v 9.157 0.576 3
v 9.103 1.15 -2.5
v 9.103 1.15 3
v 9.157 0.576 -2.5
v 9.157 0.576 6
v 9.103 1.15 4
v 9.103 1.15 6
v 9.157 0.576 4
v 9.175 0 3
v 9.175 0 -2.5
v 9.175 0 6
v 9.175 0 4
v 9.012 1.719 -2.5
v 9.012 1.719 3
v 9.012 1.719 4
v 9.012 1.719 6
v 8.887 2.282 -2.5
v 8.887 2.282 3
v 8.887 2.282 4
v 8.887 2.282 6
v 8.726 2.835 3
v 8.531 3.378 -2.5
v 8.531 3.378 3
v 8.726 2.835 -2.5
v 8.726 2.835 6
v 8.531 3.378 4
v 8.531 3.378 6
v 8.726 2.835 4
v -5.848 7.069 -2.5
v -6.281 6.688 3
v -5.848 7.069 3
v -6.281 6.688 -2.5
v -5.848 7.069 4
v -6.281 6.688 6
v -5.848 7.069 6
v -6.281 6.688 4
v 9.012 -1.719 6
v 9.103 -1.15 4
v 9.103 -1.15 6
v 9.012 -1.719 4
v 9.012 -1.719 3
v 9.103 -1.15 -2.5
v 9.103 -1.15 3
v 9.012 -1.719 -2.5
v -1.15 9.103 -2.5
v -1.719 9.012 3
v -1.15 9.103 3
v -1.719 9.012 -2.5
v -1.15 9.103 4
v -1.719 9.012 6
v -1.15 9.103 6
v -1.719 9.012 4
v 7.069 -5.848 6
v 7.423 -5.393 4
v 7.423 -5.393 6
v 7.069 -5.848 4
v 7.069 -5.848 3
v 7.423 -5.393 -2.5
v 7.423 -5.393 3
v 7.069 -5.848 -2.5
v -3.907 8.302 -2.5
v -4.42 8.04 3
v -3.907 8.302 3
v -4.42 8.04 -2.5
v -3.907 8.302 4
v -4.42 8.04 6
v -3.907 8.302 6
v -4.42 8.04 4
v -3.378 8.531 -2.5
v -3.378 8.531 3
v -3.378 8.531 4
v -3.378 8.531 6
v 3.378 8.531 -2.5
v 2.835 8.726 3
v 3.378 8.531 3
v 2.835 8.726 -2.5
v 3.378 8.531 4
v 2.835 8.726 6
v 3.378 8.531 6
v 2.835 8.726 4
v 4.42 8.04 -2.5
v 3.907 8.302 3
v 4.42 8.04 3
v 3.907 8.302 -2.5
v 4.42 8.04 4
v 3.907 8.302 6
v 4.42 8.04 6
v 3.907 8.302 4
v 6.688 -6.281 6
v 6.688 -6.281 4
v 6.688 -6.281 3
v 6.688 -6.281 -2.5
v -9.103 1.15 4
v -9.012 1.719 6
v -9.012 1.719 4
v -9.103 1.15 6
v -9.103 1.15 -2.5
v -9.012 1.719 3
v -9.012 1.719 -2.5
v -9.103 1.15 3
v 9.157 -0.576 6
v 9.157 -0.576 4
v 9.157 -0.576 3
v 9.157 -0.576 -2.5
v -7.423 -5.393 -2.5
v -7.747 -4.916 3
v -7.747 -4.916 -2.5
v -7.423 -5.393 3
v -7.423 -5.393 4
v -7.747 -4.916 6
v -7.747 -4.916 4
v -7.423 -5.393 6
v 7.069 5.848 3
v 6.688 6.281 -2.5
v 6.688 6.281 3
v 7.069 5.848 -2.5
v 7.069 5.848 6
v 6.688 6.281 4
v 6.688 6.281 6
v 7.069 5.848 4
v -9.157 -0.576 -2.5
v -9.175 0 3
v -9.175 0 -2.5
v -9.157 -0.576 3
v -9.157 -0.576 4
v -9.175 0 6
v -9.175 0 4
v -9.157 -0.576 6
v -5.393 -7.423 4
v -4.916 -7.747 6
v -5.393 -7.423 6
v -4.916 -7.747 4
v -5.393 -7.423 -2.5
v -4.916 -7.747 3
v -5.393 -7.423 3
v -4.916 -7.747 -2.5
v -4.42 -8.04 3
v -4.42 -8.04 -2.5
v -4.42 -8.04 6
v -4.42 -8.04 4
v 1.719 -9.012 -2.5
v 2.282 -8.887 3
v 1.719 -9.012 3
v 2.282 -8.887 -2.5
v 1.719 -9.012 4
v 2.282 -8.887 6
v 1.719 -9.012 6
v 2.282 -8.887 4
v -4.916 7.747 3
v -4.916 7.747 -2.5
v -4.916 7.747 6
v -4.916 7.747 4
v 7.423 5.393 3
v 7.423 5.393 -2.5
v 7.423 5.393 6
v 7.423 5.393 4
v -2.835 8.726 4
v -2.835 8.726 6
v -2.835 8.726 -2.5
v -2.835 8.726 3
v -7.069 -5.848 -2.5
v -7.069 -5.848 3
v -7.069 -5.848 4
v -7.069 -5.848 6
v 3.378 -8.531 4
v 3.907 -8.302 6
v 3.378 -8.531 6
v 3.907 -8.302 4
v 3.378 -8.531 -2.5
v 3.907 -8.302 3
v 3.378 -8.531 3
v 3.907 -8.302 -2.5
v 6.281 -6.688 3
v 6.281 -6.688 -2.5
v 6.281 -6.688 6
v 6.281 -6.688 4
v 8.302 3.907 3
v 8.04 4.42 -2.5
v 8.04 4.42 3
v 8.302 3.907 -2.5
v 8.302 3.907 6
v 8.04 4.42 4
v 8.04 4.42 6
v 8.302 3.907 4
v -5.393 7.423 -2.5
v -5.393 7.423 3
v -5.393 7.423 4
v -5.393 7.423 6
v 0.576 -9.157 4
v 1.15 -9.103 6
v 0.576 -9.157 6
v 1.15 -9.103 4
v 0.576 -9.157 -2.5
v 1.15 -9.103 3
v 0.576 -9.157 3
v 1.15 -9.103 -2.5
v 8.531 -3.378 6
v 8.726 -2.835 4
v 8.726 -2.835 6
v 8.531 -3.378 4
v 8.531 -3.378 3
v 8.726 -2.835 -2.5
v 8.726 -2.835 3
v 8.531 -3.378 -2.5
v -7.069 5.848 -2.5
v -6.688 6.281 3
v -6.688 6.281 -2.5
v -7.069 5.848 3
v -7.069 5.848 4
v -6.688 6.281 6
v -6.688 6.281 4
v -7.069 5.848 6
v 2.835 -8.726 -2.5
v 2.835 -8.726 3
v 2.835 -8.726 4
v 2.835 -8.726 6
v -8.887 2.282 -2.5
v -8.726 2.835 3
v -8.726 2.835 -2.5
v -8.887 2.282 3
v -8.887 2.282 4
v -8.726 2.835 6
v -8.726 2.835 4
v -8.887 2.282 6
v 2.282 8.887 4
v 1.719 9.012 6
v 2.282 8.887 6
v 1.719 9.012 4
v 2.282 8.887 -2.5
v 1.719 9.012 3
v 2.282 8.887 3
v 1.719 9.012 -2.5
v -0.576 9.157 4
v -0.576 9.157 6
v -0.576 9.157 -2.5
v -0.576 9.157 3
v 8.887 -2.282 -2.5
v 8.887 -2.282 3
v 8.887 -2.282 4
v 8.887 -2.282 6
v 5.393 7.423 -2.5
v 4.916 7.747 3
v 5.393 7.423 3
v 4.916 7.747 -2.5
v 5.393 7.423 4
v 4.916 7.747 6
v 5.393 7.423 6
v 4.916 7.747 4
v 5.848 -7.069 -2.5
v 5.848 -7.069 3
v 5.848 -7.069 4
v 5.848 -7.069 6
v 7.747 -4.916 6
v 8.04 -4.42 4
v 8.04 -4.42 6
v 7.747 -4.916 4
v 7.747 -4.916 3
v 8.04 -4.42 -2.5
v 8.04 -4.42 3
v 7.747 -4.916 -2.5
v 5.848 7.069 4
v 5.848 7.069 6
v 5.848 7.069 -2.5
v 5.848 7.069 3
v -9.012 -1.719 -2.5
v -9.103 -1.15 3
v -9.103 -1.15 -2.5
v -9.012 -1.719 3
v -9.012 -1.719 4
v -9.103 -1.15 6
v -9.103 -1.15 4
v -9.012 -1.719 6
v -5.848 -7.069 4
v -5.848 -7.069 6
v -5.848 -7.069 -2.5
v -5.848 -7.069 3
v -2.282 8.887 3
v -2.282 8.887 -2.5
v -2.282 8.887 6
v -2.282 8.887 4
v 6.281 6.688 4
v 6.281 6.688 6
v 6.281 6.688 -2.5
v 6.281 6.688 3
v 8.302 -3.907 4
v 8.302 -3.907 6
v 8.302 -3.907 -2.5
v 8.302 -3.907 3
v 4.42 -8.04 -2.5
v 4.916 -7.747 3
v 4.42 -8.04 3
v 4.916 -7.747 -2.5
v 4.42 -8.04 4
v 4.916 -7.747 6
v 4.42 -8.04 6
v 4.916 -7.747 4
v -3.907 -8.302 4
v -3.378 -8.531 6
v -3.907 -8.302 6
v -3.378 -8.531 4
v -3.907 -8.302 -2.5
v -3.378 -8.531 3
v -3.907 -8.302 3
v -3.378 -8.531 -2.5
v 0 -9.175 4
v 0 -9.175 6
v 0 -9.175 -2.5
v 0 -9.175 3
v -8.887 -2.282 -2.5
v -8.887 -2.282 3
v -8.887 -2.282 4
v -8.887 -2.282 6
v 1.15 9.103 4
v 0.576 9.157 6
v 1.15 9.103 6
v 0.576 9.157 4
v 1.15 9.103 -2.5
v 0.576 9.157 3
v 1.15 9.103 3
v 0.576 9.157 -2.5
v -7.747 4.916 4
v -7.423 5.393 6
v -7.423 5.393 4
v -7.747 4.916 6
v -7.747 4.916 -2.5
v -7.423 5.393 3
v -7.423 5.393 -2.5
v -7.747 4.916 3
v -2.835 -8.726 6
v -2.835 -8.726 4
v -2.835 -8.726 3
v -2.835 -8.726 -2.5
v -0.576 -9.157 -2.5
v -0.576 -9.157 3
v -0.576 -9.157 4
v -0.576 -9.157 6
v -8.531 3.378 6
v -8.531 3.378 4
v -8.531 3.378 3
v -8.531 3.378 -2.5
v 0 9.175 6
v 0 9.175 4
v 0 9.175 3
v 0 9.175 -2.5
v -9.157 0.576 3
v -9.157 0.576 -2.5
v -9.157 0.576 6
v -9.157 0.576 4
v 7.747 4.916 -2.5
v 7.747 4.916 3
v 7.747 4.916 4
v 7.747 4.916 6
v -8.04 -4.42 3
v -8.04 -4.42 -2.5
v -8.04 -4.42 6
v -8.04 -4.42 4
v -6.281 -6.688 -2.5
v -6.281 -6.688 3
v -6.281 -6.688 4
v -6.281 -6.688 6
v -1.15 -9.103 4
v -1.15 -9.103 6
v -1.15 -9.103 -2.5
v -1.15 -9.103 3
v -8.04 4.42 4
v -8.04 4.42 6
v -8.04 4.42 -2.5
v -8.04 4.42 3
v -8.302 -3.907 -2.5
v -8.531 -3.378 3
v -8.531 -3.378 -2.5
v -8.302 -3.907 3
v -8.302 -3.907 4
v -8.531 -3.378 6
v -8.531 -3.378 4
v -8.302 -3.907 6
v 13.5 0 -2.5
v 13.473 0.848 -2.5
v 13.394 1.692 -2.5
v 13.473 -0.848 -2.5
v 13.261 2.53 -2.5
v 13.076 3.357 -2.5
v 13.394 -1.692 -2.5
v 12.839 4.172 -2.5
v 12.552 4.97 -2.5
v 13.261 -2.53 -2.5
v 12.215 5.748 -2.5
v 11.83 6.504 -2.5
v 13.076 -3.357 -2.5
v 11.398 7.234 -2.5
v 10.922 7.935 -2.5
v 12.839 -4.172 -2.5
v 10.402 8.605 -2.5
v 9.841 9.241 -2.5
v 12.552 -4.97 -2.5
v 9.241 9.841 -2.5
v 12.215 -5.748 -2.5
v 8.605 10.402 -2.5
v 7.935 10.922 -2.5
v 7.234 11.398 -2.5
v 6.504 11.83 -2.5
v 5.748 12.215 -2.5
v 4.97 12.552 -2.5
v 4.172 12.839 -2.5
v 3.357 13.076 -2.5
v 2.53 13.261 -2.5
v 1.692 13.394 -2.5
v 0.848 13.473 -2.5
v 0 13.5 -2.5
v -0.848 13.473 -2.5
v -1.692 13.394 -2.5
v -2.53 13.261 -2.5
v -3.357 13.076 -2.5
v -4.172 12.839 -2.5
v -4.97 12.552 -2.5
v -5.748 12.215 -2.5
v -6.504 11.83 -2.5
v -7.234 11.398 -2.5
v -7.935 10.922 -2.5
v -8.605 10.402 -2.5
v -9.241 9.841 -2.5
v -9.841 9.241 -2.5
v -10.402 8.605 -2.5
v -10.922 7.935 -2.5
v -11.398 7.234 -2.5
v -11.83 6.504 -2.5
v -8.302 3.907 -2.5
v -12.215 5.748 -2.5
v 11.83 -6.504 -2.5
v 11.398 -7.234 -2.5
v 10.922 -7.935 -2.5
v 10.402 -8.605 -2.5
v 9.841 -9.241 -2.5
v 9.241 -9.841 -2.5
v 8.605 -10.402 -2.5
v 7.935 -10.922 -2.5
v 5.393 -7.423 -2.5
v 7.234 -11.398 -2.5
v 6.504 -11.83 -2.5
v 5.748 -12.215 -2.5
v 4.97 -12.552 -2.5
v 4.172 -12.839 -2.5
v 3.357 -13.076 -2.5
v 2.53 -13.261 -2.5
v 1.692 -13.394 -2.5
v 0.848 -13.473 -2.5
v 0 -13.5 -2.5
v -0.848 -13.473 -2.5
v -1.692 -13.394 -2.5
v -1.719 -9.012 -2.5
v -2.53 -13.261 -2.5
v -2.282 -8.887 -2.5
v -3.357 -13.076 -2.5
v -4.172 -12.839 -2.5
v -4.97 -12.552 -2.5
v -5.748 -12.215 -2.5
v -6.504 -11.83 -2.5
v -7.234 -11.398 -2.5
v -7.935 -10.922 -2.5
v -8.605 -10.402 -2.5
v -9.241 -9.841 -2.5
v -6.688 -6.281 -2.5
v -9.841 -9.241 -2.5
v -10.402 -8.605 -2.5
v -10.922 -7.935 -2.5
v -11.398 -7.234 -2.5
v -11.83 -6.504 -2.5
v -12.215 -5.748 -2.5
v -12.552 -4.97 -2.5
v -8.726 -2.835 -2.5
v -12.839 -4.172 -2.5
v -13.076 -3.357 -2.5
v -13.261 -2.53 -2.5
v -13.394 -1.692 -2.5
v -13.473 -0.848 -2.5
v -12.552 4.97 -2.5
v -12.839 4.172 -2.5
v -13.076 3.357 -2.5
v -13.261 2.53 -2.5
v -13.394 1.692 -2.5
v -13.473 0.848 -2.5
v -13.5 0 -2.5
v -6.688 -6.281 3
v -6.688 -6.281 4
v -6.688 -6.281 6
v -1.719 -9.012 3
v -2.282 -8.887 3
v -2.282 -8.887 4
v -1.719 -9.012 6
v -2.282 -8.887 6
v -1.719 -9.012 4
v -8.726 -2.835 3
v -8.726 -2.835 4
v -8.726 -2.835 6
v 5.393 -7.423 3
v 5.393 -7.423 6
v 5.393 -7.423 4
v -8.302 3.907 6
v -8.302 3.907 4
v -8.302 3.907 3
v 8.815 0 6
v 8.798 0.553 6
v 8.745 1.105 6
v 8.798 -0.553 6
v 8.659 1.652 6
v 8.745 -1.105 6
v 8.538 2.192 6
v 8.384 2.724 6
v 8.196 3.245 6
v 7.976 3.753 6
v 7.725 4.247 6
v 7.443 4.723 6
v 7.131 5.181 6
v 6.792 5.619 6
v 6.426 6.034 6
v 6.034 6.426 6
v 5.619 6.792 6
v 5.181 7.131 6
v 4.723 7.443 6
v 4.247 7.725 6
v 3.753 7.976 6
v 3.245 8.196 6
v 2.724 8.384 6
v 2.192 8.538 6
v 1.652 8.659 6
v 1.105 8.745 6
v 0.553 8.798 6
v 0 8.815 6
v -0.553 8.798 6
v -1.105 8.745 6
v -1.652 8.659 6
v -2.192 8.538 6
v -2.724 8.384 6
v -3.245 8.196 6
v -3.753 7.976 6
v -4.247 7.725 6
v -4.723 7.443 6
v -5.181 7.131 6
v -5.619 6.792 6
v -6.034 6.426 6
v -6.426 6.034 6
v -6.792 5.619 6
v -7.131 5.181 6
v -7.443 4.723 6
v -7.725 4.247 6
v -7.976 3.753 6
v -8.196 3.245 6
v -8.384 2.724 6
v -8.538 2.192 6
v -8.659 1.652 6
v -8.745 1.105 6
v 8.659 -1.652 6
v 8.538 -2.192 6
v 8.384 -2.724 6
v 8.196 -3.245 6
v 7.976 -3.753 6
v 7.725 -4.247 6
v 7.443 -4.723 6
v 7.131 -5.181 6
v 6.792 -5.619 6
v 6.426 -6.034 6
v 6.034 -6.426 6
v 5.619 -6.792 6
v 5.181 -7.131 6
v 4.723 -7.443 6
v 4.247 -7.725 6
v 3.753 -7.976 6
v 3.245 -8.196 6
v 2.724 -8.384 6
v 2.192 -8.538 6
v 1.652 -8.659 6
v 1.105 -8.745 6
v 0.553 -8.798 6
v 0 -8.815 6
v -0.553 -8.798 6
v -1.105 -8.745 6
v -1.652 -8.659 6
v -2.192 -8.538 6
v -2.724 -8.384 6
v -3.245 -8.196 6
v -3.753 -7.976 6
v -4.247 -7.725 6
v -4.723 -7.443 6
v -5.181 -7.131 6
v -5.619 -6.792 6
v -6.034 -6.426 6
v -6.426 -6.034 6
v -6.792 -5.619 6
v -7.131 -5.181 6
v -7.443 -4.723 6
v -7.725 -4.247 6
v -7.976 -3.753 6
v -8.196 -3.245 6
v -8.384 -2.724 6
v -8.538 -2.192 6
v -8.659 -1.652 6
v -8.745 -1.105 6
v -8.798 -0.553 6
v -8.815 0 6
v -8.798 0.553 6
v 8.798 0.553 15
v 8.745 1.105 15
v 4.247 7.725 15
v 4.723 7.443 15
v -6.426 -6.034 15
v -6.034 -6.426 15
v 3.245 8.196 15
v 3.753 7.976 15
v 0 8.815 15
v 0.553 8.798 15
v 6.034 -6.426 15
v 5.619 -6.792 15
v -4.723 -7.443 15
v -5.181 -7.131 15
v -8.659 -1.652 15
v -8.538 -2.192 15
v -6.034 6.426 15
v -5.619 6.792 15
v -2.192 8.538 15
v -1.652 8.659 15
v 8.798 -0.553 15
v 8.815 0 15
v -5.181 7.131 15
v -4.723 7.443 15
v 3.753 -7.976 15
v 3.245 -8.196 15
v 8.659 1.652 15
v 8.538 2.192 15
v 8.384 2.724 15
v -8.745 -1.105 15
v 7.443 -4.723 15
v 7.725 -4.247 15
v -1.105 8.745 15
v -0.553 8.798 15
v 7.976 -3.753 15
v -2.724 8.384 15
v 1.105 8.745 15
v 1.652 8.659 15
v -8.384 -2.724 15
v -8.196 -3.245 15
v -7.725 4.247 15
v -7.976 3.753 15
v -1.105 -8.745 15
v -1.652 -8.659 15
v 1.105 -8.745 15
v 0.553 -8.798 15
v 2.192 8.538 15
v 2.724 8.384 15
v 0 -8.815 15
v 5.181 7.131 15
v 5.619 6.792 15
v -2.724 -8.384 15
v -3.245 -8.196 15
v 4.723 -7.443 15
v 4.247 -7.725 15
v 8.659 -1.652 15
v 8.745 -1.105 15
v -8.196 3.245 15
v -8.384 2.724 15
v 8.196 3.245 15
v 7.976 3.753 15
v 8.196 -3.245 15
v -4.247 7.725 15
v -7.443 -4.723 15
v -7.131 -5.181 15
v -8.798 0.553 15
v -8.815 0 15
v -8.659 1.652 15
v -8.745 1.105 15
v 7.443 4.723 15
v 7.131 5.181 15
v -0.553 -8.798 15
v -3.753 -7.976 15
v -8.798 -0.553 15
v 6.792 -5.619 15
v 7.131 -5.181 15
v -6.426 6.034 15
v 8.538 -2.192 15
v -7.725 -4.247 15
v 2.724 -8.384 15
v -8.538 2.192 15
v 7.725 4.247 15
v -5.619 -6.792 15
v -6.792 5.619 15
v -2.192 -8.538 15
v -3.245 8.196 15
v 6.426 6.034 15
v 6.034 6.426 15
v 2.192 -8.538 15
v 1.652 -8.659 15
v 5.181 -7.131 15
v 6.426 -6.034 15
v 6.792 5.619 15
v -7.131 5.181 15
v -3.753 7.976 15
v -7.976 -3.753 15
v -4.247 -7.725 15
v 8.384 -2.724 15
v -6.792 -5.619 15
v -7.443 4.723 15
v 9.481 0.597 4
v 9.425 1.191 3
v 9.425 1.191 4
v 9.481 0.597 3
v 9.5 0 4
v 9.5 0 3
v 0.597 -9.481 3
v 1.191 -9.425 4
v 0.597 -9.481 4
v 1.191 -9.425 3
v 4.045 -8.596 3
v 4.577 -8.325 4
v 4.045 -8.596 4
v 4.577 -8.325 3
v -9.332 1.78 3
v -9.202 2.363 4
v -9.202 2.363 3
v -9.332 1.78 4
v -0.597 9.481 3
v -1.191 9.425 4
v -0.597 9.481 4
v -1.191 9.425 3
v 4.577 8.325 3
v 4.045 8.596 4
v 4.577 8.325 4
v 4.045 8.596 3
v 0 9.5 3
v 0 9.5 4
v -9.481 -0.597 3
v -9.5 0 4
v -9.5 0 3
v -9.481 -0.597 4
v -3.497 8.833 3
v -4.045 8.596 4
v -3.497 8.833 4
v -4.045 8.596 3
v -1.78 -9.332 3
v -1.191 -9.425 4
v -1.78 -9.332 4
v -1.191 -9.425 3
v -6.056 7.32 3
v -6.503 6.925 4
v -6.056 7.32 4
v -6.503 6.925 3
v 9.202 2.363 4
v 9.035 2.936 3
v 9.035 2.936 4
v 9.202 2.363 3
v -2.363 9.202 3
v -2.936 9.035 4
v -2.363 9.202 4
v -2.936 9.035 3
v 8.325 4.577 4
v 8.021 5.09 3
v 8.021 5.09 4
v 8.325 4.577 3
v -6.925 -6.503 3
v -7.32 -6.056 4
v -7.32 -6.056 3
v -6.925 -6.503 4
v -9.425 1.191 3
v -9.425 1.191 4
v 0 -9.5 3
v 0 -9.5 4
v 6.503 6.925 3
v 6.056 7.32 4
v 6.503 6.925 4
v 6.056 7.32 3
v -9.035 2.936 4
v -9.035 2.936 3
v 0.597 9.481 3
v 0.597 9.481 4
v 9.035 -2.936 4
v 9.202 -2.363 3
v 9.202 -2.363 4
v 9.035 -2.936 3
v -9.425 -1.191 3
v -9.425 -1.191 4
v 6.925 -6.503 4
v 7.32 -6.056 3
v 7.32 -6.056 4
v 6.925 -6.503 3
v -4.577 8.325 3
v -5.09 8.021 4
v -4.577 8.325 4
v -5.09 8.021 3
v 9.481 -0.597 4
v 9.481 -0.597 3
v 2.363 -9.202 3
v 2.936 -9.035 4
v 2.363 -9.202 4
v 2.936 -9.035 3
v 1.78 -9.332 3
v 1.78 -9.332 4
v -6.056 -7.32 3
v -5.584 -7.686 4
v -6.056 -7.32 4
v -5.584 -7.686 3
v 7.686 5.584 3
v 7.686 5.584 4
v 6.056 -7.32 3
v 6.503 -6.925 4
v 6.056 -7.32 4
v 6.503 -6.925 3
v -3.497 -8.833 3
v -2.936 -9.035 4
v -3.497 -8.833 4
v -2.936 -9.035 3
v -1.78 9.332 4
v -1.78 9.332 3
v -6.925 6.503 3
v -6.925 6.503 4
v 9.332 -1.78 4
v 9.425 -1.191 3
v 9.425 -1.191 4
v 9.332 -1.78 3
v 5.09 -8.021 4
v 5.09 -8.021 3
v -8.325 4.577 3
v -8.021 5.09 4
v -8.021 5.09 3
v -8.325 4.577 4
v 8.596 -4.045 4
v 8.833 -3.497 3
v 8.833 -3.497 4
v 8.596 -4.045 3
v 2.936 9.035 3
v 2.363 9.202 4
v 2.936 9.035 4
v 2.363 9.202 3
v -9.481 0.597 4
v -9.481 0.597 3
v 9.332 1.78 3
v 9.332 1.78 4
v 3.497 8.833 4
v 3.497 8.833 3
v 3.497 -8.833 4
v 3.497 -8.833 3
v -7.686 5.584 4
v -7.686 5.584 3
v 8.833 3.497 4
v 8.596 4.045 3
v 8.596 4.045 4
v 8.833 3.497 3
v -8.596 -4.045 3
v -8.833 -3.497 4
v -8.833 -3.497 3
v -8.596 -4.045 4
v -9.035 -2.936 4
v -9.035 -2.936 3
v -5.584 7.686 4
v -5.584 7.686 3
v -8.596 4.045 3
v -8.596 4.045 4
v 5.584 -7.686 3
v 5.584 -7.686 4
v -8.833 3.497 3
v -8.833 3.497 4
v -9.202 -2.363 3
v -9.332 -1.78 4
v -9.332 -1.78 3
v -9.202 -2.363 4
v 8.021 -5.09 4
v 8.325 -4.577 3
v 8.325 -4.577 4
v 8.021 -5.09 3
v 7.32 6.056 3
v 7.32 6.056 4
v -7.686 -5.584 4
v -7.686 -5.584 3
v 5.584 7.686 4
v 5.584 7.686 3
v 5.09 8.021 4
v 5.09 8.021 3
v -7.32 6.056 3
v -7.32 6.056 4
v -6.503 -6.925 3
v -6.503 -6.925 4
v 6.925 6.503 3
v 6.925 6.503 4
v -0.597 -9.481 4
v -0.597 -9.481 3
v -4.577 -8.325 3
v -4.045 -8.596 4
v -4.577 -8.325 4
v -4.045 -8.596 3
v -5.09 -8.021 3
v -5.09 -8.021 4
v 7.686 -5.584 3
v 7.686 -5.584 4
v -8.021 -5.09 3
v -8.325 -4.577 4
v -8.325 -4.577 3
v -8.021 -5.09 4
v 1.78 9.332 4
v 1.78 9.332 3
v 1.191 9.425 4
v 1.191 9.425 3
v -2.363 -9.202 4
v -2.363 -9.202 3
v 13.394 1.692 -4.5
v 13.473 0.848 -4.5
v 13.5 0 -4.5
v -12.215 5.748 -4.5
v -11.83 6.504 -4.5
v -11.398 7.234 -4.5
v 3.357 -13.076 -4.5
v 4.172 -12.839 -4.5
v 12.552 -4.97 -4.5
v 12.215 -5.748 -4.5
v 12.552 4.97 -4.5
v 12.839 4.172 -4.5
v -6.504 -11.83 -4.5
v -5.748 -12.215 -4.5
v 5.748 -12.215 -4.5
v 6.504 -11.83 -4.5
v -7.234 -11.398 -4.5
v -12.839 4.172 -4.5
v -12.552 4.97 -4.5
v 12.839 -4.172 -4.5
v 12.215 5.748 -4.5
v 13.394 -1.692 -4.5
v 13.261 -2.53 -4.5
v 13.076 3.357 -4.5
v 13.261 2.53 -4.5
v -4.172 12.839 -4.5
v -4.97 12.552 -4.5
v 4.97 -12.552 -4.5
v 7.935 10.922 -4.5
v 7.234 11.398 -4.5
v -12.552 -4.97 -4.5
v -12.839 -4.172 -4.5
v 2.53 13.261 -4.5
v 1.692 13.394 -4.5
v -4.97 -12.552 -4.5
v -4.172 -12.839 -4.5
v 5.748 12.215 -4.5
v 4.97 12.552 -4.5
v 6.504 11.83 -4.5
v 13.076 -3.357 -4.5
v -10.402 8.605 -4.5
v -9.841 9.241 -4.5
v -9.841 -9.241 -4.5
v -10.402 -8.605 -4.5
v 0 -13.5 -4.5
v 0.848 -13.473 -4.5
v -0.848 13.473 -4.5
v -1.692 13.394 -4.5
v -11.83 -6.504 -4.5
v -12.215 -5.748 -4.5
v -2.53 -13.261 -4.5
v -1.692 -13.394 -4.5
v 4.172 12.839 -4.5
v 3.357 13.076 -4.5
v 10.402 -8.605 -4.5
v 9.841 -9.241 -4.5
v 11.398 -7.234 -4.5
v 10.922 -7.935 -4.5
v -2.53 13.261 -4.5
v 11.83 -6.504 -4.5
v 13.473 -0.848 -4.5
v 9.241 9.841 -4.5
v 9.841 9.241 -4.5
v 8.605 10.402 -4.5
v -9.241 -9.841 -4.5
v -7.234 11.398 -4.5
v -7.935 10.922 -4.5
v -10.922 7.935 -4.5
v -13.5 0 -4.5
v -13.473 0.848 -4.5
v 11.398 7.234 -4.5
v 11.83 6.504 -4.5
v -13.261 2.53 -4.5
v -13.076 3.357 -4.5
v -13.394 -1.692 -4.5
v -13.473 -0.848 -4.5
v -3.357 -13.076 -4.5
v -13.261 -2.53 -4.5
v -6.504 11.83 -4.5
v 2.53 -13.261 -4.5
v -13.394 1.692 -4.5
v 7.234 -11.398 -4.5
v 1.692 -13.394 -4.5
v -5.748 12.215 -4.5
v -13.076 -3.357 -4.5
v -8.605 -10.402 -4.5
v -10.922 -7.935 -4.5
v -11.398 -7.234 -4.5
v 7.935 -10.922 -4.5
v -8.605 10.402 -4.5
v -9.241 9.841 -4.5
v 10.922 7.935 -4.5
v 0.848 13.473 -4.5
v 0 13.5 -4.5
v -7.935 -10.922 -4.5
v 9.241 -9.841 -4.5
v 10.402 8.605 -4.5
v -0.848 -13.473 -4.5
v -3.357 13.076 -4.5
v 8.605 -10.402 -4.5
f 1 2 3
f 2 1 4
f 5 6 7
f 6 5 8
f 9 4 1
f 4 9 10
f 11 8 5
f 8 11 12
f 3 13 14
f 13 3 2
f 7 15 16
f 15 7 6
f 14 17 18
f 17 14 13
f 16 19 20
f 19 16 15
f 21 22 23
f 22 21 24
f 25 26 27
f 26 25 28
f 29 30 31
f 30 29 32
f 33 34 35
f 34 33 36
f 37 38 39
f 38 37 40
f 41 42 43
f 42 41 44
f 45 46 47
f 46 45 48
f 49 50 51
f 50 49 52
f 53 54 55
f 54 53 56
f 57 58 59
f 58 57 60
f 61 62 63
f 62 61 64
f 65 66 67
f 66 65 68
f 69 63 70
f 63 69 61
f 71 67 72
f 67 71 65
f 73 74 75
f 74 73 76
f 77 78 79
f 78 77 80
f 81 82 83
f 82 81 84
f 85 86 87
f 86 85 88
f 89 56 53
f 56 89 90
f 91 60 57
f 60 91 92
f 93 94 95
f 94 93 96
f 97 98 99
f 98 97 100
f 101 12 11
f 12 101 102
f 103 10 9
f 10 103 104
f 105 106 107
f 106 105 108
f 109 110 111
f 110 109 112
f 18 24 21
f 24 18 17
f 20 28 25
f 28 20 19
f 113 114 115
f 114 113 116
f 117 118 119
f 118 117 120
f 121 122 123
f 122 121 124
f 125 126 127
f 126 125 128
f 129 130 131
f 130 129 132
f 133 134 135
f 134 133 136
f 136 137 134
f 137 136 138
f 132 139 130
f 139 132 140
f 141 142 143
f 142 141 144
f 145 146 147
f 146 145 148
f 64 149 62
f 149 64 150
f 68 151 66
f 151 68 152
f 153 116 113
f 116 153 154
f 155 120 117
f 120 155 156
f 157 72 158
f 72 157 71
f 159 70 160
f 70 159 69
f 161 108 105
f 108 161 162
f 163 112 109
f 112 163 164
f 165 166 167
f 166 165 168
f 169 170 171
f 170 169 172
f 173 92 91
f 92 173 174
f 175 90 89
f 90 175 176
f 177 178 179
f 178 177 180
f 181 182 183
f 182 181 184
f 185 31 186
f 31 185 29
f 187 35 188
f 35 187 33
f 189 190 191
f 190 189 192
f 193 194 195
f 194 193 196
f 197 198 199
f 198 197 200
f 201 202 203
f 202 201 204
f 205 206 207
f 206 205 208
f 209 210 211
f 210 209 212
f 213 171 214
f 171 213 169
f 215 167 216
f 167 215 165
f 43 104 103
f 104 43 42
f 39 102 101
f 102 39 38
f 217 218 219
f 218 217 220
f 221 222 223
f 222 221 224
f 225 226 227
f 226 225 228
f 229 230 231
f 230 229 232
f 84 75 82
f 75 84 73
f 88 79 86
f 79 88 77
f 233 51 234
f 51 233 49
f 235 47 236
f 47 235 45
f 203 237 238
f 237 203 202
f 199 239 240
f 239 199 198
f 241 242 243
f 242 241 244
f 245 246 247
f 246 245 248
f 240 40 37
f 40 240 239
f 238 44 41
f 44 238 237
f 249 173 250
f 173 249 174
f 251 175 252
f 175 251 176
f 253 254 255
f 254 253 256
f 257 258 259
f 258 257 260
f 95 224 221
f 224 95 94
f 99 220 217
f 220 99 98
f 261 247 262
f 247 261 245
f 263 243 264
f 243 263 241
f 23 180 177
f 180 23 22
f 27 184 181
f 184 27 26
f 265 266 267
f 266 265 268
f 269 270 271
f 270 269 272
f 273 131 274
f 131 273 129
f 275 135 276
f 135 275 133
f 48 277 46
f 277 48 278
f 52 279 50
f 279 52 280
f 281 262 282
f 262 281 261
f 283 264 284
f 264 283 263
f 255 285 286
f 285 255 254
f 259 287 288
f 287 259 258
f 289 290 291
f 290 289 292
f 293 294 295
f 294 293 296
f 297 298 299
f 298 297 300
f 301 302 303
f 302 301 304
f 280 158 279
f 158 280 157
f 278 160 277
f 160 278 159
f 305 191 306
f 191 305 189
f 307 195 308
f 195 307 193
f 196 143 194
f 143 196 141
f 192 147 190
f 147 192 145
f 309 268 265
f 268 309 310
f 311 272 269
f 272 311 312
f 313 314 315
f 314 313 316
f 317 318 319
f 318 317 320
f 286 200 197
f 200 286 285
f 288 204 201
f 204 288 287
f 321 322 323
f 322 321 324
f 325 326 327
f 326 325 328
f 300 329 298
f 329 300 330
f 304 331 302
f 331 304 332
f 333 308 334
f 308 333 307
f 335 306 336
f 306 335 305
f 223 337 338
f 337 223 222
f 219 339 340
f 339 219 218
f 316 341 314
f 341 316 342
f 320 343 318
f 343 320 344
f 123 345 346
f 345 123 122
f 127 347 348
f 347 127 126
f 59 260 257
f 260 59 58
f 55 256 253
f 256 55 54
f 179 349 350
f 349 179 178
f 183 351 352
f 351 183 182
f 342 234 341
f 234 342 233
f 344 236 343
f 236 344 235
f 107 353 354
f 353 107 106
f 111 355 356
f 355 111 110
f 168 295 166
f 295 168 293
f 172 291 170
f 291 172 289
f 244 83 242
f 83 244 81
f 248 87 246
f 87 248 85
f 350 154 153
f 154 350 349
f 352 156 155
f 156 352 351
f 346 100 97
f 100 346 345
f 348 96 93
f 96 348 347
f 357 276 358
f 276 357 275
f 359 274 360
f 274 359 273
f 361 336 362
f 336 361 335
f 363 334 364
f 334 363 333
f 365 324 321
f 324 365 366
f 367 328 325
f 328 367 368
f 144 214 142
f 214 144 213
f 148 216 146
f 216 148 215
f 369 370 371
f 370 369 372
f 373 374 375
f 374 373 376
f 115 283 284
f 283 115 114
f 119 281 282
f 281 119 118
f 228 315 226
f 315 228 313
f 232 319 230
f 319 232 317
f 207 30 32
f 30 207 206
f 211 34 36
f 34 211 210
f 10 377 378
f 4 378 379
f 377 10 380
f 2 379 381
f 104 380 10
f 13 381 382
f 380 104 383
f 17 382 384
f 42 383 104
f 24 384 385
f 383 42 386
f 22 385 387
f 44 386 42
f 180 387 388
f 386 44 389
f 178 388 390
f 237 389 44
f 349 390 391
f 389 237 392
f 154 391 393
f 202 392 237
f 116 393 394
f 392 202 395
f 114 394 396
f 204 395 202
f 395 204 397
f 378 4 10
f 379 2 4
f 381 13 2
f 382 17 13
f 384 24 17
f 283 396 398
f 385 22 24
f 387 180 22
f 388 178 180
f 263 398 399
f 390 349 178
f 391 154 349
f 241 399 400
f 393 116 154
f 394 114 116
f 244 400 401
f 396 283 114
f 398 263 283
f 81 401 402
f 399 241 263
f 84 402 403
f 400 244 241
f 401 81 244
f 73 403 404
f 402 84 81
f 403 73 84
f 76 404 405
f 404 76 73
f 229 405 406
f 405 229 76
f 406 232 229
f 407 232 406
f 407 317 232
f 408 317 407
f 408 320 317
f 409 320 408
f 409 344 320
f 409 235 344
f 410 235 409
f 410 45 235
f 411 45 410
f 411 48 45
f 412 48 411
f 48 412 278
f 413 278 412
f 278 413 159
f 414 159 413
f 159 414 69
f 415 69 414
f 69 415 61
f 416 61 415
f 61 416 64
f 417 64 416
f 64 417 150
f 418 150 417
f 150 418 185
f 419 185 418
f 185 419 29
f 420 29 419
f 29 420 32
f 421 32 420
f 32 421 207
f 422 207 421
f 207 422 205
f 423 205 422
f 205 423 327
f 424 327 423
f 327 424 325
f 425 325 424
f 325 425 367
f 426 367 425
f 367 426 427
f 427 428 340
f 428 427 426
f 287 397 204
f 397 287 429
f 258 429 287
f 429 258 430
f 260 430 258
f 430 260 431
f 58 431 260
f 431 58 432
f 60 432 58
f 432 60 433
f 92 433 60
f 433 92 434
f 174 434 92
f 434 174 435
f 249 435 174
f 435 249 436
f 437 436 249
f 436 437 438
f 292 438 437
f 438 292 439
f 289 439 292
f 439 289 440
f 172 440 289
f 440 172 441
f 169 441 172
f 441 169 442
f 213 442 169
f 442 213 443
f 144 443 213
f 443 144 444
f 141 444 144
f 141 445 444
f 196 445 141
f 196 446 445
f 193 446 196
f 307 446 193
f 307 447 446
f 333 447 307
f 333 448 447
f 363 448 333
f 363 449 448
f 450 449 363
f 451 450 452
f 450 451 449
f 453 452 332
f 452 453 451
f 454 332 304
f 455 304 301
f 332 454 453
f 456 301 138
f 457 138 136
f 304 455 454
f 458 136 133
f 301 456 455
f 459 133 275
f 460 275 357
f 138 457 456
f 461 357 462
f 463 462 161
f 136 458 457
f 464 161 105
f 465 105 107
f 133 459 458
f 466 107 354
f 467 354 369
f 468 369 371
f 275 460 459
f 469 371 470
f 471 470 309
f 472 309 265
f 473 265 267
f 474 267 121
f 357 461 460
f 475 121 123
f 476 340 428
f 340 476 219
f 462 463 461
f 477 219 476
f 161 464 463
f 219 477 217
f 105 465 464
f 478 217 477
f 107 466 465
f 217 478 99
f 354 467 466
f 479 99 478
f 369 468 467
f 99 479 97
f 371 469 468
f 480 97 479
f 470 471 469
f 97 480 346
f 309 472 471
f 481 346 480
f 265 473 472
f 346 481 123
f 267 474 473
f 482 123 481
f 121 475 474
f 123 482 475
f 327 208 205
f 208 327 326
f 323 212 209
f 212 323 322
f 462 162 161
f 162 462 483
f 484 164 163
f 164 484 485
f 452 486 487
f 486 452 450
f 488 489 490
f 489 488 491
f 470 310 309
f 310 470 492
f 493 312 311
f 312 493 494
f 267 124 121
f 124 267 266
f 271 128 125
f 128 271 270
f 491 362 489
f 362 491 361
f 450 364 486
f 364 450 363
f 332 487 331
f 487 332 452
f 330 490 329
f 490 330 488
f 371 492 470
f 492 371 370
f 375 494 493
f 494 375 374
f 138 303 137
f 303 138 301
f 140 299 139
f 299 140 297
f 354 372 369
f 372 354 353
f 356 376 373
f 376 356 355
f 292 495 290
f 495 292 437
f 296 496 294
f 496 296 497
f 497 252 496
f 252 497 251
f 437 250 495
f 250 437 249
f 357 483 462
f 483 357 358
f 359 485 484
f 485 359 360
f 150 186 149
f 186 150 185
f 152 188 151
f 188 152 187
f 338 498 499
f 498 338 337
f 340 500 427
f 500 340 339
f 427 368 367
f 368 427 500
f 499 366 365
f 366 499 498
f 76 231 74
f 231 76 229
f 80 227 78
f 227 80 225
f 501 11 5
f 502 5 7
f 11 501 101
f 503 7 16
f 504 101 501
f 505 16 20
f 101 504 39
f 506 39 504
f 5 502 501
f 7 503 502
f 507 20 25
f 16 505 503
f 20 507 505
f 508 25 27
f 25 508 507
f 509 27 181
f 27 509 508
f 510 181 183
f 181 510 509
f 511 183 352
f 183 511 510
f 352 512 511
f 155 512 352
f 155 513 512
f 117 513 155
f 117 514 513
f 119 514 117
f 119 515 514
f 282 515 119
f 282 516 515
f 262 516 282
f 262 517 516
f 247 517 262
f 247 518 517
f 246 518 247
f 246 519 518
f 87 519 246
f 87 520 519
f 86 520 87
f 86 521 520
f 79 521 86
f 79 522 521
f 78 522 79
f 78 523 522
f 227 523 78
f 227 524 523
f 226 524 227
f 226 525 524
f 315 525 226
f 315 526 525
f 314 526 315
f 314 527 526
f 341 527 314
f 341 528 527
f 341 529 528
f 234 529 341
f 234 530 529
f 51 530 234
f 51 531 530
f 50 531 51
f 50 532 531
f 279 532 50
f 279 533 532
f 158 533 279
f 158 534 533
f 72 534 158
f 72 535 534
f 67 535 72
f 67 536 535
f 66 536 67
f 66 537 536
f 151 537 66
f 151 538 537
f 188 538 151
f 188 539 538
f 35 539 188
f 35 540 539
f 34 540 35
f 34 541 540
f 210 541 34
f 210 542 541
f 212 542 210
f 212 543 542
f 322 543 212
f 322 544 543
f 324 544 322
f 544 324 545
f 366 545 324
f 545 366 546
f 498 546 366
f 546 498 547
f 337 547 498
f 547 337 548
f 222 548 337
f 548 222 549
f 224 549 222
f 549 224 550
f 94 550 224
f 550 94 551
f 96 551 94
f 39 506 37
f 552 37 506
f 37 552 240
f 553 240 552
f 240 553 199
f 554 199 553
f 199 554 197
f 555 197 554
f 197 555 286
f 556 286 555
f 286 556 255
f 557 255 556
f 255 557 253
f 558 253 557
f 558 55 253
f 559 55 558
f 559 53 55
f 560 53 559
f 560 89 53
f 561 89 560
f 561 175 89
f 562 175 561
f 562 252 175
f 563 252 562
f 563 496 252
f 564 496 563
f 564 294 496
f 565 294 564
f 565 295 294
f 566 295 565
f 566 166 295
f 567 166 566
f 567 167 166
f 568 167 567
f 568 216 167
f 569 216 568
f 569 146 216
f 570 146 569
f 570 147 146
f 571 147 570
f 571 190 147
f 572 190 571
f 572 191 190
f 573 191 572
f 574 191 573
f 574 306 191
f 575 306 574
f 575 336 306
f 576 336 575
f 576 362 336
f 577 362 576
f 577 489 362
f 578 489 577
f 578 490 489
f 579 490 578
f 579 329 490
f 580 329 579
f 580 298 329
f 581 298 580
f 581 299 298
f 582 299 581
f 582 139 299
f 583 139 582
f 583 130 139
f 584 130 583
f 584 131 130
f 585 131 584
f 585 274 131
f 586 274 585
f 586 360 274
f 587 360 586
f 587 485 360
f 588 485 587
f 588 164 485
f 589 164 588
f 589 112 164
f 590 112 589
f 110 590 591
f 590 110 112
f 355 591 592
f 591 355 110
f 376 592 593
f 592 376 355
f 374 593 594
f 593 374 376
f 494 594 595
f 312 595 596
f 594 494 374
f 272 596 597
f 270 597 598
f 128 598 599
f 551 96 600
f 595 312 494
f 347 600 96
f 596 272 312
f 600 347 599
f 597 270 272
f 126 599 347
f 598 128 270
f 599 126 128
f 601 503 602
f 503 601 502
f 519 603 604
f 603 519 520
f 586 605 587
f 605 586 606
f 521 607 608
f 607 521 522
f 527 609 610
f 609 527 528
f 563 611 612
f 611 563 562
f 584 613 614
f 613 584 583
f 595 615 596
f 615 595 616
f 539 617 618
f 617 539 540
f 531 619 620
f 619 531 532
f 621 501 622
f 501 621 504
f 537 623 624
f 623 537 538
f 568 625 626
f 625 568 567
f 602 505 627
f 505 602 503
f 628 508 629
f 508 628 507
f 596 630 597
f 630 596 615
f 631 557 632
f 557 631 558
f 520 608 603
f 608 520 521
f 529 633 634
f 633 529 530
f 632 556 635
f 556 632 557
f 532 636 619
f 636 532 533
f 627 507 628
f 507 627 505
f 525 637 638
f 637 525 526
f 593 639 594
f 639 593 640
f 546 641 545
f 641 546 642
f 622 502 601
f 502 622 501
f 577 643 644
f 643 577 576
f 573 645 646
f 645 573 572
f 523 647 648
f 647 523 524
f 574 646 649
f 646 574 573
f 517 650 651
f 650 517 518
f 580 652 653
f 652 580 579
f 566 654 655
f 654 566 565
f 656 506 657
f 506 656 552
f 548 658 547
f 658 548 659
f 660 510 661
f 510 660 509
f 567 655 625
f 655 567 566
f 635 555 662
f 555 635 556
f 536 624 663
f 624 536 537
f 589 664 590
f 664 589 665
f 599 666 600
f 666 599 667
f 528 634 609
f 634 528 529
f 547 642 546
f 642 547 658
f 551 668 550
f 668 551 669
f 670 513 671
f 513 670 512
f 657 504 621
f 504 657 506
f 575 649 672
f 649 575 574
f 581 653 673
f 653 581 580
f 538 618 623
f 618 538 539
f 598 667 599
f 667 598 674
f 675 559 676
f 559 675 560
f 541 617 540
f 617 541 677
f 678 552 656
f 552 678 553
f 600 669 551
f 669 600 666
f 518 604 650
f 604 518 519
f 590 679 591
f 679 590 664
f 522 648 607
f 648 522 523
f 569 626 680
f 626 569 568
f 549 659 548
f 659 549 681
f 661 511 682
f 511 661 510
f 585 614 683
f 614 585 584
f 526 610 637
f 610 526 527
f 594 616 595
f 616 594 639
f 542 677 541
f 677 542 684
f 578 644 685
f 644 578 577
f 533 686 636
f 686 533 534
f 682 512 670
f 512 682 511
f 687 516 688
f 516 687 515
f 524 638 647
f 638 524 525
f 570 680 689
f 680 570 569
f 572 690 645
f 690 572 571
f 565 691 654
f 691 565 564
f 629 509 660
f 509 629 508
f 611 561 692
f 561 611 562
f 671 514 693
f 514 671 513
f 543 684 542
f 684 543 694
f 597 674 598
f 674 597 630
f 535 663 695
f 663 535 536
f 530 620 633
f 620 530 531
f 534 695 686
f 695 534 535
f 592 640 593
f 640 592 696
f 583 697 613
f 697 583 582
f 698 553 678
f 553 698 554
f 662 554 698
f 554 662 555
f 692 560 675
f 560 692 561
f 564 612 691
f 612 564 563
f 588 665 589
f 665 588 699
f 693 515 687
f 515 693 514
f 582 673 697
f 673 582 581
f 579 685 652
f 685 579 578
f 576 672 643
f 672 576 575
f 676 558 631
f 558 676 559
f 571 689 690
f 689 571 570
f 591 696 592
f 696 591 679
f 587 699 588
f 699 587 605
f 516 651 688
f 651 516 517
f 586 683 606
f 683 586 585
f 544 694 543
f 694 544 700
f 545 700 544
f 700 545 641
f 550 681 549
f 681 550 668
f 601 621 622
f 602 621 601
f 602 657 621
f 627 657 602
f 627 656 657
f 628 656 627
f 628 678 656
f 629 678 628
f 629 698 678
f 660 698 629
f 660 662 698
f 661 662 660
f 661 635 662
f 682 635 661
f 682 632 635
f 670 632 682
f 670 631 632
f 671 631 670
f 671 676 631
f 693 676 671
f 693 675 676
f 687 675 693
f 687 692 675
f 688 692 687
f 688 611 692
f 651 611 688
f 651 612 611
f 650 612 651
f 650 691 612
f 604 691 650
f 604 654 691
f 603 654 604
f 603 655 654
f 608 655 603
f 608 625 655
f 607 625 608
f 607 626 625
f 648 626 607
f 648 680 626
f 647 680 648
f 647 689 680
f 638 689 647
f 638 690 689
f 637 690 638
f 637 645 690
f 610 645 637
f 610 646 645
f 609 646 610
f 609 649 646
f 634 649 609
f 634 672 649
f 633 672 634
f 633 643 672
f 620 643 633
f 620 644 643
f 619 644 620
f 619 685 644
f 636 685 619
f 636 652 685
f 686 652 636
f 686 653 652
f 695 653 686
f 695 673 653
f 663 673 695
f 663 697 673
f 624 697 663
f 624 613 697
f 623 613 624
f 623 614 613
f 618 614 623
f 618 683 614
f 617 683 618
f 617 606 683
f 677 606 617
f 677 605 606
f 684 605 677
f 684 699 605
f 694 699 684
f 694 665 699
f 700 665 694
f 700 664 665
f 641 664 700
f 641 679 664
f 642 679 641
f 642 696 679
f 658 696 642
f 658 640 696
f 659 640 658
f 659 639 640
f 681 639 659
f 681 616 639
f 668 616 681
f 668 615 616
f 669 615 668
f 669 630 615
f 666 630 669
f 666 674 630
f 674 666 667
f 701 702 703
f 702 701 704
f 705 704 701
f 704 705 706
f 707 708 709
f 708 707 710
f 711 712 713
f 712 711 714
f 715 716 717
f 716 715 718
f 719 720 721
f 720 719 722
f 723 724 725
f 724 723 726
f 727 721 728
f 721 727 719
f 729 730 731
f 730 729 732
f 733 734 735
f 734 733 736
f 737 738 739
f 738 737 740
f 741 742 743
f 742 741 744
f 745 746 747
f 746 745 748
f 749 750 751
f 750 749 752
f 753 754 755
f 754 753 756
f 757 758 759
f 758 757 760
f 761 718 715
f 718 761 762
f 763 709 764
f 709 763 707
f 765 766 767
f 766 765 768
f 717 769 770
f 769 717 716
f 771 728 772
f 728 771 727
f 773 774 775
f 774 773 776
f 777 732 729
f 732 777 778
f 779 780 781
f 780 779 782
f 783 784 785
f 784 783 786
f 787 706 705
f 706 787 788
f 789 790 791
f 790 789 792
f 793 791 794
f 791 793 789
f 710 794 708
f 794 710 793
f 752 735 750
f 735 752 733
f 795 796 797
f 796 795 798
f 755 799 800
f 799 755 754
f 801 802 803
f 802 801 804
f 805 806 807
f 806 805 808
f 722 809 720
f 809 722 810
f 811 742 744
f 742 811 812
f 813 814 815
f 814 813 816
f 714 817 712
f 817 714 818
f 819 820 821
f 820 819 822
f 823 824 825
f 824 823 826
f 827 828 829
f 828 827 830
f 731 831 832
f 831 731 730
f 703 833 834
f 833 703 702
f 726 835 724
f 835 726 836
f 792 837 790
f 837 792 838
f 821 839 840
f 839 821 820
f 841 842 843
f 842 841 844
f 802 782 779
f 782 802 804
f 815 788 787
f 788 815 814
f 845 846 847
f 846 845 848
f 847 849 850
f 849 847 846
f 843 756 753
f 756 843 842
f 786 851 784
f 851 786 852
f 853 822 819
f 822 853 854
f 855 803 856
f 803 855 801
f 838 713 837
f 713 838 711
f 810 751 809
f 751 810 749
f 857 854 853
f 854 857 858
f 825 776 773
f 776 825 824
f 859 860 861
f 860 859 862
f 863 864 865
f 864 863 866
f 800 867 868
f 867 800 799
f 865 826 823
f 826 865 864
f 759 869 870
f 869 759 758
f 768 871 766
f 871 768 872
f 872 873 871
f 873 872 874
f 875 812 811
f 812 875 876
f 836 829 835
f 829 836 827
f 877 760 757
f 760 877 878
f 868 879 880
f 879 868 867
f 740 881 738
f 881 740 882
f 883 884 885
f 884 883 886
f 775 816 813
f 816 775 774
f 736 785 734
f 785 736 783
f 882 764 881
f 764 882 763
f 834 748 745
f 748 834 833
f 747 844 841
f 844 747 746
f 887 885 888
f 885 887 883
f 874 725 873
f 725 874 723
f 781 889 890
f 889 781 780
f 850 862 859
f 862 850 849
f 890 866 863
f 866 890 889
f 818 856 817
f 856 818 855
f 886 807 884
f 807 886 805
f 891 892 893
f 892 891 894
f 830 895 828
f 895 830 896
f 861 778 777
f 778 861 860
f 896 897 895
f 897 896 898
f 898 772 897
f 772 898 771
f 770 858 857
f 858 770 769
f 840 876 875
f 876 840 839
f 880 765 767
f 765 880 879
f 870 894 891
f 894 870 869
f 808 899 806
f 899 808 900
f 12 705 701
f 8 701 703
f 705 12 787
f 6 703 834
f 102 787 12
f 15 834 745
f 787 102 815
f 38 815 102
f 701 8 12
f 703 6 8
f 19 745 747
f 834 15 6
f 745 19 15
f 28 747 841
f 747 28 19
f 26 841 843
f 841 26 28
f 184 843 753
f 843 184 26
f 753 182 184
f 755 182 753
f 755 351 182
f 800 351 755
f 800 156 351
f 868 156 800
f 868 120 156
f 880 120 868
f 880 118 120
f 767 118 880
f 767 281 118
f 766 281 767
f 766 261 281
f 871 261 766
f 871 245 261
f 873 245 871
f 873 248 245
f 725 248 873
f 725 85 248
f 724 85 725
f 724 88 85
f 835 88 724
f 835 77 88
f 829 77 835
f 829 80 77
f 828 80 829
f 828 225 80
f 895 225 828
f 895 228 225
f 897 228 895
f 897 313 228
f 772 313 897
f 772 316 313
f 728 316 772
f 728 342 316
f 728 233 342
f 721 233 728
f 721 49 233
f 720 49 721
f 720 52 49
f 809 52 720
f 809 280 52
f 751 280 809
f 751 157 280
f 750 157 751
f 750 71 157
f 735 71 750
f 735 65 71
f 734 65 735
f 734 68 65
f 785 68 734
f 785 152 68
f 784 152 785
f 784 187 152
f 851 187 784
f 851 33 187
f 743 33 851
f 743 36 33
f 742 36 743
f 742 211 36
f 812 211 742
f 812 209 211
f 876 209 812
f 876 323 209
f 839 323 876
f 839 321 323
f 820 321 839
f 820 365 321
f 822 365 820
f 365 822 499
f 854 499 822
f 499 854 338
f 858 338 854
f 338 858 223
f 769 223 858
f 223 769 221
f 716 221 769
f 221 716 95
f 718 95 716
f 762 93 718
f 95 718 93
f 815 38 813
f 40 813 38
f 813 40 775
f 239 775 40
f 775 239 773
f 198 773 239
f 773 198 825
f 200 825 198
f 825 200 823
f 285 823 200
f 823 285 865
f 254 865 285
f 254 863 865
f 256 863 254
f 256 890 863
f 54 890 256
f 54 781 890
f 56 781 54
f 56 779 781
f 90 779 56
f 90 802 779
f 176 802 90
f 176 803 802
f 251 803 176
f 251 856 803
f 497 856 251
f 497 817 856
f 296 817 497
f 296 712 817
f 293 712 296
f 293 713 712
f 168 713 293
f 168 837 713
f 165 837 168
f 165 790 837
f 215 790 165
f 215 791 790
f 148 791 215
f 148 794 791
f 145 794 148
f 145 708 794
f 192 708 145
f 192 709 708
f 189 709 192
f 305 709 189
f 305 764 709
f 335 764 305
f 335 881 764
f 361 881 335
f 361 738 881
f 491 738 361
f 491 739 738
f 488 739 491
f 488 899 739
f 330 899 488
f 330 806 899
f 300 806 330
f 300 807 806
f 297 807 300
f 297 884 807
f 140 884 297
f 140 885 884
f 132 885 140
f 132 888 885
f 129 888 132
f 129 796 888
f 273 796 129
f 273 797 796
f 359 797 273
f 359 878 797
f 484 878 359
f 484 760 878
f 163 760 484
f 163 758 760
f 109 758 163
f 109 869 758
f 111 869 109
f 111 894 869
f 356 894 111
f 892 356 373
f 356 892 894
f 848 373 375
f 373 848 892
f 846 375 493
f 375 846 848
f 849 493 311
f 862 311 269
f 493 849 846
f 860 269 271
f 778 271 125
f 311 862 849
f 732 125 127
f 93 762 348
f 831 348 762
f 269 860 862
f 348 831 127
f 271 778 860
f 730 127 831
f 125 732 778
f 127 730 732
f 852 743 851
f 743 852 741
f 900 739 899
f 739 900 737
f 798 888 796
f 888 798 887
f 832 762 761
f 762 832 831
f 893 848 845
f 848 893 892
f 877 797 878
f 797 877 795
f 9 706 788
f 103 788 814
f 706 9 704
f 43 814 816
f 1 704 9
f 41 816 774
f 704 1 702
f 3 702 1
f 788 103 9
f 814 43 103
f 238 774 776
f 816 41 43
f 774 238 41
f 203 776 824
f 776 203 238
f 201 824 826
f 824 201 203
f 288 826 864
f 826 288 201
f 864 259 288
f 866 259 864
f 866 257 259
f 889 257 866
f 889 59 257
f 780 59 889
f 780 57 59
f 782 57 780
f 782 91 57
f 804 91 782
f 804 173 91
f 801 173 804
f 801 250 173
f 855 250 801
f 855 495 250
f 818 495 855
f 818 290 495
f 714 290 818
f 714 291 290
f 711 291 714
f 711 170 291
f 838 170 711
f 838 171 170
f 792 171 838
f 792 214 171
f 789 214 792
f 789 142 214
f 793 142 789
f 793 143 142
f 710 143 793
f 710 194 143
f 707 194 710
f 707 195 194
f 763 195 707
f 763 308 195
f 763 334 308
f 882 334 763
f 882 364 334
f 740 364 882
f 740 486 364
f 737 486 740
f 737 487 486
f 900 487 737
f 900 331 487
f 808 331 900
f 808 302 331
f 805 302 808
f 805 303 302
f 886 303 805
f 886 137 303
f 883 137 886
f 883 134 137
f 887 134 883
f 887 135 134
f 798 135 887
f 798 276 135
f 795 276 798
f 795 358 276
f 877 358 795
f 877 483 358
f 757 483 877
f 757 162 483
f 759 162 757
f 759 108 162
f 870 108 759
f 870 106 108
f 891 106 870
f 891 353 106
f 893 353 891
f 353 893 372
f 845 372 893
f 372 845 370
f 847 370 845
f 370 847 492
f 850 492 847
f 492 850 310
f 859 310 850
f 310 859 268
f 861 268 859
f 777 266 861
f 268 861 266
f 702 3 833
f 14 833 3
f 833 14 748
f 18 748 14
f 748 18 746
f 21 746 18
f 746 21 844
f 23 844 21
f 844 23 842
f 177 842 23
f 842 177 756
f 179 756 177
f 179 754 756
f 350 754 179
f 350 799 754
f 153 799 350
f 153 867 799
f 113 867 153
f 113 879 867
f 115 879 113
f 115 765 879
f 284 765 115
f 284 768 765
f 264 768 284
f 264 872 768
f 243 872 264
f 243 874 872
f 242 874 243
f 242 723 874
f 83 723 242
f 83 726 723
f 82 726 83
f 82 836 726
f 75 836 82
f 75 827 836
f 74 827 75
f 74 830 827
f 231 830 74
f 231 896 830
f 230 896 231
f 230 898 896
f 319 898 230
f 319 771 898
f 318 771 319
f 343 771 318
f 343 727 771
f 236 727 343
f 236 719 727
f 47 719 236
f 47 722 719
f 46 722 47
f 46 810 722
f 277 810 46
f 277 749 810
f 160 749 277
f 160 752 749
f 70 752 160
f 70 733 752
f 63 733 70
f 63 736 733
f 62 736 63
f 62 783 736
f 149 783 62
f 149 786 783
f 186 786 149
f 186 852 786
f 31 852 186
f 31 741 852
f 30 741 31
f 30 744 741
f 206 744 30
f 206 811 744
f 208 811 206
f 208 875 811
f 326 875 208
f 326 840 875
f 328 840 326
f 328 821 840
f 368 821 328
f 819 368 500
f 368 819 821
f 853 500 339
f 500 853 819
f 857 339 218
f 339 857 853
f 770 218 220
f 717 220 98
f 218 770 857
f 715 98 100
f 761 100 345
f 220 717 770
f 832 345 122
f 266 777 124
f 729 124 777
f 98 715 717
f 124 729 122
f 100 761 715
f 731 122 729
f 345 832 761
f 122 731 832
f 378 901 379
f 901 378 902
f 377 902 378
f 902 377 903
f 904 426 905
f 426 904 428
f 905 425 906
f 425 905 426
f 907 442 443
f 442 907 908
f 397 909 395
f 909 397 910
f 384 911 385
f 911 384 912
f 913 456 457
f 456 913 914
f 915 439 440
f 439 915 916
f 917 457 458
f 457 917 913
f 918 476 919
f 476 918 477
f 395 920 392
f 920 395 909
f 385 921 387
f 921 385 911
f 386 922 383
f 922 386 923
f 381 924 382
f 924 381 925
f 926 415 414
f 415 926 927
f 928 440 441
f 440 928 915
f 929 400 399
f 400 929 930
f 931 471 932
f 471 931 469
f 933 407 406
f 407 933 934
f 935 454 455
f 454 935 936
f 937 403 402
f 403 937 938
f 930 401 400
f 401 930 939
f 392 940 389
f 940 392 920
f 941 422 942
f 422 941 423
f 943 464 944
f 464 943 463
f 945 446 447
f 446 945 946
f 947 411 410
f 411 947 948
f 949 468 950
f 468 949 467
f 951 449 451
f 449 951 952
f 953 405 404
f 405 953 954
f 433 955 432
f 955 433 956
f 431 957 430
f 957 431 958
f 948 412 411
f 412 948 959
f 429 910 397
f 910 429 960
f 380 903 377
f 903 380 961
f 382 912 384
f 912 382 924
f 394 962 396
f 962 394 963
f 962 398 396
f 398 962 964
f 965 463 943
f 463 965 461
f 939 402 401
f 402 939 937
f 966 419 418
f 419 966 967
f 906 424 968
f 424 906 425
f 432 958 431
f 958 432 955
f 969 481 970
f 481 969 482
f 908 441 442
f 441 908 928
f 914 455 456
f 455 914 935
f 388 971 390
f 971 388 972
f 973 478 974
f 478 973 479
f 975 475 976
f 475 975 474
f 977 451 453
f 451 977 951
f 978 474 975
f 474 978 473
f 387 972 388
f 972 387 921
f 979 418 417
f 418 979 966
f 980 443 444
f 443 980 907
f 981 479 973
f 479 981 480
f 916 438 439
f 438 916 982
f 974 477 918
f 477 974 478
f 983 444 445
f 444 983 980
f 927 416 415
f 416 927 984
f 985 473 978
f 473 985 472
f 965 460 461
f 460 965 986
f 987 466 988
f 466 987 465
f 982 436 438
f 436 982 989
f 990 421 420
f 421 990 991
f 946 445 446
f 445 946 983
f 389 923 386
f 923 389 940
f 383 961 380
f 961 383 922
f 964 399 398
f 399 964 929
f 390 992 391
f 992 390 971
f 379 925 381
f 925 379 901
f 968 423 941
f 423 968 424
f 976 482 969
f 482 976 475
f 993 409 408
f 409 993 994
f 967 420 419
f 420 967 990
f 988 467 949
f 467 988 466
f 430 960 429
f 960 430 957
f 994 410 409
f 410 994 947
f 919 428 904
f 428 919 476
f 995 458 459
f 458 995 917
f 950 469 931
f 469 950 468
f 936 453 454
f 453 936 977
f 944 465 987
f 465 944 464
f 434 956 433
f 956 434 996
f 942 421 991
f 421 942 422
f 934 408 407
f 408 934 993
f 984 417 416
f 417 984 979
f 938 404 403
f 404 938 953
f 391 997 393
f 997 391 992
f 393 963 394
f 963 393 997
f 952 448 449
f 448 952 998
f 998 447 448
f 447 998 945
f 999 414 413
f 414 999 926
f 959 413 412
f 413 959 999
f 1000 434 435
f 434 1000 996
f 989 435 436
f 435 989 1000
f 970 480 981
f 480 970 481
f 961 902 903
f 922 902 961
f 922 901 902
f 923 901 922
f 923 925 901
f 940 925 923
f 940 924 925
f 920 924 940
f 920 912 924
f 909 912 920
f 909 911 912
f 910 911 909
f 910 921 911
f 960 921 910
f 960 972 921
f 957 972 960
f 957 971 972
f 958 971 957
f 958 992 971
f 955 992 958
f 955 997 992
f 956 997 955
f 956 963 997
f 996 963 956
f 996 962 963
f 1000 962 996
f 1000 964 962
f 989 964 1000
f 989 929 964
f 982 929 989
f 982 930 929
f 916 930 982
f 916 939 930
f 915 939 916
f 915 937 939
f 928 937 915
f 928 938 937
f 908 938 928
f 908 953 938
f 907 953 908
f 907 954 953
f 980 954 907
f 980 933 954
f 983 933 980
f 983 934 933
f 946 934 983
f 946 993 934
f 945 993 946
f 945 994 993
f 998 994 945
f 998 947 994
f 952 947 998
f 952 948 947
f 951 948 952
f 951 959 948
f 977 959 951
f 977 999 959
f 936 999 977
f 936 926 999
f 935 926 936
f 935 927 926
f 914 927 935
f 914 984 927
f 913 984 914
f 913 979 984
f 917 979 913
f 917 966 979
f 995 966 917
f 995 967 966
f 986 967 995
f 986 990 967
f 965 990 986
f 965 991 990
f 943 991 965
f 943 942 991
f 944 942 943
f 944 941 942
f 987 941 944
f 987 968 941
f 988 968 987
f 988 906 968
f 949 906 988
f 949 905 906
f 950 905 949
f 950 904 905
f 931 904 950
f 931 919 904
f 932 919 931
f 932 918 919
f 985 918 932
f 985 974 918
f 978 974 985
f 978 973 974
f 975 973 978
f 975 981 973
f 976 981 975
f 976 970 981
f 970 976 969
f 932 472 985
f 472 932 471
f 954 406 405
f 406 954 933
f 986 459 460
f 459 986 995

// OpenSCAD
$fn=100;
plateH = 2.5 ;
topInsideH = 6 ;
headH = 2 ;
headD = 27 ;
//diameter of top inside
translate([0,0,-plateH]) cylinder(h=6+plateH,d=18.35);
//diameter of inside
translate([0,0,5]) cylinder(h=10,d=17.63);
//rim
translate([0,0,3]) cylinder(h=1,d=19);
//head
translate([0,0,-(headH+plateH)]) cylinder(h=headH,d=headD);
//plate
*translate([0,0,-2.5]) difference(){
    translate([-20,-20.0])cube([40,40,plateH]);
    translate([0,0,-.1]) cylinder(h=3,d=19.25);
}
